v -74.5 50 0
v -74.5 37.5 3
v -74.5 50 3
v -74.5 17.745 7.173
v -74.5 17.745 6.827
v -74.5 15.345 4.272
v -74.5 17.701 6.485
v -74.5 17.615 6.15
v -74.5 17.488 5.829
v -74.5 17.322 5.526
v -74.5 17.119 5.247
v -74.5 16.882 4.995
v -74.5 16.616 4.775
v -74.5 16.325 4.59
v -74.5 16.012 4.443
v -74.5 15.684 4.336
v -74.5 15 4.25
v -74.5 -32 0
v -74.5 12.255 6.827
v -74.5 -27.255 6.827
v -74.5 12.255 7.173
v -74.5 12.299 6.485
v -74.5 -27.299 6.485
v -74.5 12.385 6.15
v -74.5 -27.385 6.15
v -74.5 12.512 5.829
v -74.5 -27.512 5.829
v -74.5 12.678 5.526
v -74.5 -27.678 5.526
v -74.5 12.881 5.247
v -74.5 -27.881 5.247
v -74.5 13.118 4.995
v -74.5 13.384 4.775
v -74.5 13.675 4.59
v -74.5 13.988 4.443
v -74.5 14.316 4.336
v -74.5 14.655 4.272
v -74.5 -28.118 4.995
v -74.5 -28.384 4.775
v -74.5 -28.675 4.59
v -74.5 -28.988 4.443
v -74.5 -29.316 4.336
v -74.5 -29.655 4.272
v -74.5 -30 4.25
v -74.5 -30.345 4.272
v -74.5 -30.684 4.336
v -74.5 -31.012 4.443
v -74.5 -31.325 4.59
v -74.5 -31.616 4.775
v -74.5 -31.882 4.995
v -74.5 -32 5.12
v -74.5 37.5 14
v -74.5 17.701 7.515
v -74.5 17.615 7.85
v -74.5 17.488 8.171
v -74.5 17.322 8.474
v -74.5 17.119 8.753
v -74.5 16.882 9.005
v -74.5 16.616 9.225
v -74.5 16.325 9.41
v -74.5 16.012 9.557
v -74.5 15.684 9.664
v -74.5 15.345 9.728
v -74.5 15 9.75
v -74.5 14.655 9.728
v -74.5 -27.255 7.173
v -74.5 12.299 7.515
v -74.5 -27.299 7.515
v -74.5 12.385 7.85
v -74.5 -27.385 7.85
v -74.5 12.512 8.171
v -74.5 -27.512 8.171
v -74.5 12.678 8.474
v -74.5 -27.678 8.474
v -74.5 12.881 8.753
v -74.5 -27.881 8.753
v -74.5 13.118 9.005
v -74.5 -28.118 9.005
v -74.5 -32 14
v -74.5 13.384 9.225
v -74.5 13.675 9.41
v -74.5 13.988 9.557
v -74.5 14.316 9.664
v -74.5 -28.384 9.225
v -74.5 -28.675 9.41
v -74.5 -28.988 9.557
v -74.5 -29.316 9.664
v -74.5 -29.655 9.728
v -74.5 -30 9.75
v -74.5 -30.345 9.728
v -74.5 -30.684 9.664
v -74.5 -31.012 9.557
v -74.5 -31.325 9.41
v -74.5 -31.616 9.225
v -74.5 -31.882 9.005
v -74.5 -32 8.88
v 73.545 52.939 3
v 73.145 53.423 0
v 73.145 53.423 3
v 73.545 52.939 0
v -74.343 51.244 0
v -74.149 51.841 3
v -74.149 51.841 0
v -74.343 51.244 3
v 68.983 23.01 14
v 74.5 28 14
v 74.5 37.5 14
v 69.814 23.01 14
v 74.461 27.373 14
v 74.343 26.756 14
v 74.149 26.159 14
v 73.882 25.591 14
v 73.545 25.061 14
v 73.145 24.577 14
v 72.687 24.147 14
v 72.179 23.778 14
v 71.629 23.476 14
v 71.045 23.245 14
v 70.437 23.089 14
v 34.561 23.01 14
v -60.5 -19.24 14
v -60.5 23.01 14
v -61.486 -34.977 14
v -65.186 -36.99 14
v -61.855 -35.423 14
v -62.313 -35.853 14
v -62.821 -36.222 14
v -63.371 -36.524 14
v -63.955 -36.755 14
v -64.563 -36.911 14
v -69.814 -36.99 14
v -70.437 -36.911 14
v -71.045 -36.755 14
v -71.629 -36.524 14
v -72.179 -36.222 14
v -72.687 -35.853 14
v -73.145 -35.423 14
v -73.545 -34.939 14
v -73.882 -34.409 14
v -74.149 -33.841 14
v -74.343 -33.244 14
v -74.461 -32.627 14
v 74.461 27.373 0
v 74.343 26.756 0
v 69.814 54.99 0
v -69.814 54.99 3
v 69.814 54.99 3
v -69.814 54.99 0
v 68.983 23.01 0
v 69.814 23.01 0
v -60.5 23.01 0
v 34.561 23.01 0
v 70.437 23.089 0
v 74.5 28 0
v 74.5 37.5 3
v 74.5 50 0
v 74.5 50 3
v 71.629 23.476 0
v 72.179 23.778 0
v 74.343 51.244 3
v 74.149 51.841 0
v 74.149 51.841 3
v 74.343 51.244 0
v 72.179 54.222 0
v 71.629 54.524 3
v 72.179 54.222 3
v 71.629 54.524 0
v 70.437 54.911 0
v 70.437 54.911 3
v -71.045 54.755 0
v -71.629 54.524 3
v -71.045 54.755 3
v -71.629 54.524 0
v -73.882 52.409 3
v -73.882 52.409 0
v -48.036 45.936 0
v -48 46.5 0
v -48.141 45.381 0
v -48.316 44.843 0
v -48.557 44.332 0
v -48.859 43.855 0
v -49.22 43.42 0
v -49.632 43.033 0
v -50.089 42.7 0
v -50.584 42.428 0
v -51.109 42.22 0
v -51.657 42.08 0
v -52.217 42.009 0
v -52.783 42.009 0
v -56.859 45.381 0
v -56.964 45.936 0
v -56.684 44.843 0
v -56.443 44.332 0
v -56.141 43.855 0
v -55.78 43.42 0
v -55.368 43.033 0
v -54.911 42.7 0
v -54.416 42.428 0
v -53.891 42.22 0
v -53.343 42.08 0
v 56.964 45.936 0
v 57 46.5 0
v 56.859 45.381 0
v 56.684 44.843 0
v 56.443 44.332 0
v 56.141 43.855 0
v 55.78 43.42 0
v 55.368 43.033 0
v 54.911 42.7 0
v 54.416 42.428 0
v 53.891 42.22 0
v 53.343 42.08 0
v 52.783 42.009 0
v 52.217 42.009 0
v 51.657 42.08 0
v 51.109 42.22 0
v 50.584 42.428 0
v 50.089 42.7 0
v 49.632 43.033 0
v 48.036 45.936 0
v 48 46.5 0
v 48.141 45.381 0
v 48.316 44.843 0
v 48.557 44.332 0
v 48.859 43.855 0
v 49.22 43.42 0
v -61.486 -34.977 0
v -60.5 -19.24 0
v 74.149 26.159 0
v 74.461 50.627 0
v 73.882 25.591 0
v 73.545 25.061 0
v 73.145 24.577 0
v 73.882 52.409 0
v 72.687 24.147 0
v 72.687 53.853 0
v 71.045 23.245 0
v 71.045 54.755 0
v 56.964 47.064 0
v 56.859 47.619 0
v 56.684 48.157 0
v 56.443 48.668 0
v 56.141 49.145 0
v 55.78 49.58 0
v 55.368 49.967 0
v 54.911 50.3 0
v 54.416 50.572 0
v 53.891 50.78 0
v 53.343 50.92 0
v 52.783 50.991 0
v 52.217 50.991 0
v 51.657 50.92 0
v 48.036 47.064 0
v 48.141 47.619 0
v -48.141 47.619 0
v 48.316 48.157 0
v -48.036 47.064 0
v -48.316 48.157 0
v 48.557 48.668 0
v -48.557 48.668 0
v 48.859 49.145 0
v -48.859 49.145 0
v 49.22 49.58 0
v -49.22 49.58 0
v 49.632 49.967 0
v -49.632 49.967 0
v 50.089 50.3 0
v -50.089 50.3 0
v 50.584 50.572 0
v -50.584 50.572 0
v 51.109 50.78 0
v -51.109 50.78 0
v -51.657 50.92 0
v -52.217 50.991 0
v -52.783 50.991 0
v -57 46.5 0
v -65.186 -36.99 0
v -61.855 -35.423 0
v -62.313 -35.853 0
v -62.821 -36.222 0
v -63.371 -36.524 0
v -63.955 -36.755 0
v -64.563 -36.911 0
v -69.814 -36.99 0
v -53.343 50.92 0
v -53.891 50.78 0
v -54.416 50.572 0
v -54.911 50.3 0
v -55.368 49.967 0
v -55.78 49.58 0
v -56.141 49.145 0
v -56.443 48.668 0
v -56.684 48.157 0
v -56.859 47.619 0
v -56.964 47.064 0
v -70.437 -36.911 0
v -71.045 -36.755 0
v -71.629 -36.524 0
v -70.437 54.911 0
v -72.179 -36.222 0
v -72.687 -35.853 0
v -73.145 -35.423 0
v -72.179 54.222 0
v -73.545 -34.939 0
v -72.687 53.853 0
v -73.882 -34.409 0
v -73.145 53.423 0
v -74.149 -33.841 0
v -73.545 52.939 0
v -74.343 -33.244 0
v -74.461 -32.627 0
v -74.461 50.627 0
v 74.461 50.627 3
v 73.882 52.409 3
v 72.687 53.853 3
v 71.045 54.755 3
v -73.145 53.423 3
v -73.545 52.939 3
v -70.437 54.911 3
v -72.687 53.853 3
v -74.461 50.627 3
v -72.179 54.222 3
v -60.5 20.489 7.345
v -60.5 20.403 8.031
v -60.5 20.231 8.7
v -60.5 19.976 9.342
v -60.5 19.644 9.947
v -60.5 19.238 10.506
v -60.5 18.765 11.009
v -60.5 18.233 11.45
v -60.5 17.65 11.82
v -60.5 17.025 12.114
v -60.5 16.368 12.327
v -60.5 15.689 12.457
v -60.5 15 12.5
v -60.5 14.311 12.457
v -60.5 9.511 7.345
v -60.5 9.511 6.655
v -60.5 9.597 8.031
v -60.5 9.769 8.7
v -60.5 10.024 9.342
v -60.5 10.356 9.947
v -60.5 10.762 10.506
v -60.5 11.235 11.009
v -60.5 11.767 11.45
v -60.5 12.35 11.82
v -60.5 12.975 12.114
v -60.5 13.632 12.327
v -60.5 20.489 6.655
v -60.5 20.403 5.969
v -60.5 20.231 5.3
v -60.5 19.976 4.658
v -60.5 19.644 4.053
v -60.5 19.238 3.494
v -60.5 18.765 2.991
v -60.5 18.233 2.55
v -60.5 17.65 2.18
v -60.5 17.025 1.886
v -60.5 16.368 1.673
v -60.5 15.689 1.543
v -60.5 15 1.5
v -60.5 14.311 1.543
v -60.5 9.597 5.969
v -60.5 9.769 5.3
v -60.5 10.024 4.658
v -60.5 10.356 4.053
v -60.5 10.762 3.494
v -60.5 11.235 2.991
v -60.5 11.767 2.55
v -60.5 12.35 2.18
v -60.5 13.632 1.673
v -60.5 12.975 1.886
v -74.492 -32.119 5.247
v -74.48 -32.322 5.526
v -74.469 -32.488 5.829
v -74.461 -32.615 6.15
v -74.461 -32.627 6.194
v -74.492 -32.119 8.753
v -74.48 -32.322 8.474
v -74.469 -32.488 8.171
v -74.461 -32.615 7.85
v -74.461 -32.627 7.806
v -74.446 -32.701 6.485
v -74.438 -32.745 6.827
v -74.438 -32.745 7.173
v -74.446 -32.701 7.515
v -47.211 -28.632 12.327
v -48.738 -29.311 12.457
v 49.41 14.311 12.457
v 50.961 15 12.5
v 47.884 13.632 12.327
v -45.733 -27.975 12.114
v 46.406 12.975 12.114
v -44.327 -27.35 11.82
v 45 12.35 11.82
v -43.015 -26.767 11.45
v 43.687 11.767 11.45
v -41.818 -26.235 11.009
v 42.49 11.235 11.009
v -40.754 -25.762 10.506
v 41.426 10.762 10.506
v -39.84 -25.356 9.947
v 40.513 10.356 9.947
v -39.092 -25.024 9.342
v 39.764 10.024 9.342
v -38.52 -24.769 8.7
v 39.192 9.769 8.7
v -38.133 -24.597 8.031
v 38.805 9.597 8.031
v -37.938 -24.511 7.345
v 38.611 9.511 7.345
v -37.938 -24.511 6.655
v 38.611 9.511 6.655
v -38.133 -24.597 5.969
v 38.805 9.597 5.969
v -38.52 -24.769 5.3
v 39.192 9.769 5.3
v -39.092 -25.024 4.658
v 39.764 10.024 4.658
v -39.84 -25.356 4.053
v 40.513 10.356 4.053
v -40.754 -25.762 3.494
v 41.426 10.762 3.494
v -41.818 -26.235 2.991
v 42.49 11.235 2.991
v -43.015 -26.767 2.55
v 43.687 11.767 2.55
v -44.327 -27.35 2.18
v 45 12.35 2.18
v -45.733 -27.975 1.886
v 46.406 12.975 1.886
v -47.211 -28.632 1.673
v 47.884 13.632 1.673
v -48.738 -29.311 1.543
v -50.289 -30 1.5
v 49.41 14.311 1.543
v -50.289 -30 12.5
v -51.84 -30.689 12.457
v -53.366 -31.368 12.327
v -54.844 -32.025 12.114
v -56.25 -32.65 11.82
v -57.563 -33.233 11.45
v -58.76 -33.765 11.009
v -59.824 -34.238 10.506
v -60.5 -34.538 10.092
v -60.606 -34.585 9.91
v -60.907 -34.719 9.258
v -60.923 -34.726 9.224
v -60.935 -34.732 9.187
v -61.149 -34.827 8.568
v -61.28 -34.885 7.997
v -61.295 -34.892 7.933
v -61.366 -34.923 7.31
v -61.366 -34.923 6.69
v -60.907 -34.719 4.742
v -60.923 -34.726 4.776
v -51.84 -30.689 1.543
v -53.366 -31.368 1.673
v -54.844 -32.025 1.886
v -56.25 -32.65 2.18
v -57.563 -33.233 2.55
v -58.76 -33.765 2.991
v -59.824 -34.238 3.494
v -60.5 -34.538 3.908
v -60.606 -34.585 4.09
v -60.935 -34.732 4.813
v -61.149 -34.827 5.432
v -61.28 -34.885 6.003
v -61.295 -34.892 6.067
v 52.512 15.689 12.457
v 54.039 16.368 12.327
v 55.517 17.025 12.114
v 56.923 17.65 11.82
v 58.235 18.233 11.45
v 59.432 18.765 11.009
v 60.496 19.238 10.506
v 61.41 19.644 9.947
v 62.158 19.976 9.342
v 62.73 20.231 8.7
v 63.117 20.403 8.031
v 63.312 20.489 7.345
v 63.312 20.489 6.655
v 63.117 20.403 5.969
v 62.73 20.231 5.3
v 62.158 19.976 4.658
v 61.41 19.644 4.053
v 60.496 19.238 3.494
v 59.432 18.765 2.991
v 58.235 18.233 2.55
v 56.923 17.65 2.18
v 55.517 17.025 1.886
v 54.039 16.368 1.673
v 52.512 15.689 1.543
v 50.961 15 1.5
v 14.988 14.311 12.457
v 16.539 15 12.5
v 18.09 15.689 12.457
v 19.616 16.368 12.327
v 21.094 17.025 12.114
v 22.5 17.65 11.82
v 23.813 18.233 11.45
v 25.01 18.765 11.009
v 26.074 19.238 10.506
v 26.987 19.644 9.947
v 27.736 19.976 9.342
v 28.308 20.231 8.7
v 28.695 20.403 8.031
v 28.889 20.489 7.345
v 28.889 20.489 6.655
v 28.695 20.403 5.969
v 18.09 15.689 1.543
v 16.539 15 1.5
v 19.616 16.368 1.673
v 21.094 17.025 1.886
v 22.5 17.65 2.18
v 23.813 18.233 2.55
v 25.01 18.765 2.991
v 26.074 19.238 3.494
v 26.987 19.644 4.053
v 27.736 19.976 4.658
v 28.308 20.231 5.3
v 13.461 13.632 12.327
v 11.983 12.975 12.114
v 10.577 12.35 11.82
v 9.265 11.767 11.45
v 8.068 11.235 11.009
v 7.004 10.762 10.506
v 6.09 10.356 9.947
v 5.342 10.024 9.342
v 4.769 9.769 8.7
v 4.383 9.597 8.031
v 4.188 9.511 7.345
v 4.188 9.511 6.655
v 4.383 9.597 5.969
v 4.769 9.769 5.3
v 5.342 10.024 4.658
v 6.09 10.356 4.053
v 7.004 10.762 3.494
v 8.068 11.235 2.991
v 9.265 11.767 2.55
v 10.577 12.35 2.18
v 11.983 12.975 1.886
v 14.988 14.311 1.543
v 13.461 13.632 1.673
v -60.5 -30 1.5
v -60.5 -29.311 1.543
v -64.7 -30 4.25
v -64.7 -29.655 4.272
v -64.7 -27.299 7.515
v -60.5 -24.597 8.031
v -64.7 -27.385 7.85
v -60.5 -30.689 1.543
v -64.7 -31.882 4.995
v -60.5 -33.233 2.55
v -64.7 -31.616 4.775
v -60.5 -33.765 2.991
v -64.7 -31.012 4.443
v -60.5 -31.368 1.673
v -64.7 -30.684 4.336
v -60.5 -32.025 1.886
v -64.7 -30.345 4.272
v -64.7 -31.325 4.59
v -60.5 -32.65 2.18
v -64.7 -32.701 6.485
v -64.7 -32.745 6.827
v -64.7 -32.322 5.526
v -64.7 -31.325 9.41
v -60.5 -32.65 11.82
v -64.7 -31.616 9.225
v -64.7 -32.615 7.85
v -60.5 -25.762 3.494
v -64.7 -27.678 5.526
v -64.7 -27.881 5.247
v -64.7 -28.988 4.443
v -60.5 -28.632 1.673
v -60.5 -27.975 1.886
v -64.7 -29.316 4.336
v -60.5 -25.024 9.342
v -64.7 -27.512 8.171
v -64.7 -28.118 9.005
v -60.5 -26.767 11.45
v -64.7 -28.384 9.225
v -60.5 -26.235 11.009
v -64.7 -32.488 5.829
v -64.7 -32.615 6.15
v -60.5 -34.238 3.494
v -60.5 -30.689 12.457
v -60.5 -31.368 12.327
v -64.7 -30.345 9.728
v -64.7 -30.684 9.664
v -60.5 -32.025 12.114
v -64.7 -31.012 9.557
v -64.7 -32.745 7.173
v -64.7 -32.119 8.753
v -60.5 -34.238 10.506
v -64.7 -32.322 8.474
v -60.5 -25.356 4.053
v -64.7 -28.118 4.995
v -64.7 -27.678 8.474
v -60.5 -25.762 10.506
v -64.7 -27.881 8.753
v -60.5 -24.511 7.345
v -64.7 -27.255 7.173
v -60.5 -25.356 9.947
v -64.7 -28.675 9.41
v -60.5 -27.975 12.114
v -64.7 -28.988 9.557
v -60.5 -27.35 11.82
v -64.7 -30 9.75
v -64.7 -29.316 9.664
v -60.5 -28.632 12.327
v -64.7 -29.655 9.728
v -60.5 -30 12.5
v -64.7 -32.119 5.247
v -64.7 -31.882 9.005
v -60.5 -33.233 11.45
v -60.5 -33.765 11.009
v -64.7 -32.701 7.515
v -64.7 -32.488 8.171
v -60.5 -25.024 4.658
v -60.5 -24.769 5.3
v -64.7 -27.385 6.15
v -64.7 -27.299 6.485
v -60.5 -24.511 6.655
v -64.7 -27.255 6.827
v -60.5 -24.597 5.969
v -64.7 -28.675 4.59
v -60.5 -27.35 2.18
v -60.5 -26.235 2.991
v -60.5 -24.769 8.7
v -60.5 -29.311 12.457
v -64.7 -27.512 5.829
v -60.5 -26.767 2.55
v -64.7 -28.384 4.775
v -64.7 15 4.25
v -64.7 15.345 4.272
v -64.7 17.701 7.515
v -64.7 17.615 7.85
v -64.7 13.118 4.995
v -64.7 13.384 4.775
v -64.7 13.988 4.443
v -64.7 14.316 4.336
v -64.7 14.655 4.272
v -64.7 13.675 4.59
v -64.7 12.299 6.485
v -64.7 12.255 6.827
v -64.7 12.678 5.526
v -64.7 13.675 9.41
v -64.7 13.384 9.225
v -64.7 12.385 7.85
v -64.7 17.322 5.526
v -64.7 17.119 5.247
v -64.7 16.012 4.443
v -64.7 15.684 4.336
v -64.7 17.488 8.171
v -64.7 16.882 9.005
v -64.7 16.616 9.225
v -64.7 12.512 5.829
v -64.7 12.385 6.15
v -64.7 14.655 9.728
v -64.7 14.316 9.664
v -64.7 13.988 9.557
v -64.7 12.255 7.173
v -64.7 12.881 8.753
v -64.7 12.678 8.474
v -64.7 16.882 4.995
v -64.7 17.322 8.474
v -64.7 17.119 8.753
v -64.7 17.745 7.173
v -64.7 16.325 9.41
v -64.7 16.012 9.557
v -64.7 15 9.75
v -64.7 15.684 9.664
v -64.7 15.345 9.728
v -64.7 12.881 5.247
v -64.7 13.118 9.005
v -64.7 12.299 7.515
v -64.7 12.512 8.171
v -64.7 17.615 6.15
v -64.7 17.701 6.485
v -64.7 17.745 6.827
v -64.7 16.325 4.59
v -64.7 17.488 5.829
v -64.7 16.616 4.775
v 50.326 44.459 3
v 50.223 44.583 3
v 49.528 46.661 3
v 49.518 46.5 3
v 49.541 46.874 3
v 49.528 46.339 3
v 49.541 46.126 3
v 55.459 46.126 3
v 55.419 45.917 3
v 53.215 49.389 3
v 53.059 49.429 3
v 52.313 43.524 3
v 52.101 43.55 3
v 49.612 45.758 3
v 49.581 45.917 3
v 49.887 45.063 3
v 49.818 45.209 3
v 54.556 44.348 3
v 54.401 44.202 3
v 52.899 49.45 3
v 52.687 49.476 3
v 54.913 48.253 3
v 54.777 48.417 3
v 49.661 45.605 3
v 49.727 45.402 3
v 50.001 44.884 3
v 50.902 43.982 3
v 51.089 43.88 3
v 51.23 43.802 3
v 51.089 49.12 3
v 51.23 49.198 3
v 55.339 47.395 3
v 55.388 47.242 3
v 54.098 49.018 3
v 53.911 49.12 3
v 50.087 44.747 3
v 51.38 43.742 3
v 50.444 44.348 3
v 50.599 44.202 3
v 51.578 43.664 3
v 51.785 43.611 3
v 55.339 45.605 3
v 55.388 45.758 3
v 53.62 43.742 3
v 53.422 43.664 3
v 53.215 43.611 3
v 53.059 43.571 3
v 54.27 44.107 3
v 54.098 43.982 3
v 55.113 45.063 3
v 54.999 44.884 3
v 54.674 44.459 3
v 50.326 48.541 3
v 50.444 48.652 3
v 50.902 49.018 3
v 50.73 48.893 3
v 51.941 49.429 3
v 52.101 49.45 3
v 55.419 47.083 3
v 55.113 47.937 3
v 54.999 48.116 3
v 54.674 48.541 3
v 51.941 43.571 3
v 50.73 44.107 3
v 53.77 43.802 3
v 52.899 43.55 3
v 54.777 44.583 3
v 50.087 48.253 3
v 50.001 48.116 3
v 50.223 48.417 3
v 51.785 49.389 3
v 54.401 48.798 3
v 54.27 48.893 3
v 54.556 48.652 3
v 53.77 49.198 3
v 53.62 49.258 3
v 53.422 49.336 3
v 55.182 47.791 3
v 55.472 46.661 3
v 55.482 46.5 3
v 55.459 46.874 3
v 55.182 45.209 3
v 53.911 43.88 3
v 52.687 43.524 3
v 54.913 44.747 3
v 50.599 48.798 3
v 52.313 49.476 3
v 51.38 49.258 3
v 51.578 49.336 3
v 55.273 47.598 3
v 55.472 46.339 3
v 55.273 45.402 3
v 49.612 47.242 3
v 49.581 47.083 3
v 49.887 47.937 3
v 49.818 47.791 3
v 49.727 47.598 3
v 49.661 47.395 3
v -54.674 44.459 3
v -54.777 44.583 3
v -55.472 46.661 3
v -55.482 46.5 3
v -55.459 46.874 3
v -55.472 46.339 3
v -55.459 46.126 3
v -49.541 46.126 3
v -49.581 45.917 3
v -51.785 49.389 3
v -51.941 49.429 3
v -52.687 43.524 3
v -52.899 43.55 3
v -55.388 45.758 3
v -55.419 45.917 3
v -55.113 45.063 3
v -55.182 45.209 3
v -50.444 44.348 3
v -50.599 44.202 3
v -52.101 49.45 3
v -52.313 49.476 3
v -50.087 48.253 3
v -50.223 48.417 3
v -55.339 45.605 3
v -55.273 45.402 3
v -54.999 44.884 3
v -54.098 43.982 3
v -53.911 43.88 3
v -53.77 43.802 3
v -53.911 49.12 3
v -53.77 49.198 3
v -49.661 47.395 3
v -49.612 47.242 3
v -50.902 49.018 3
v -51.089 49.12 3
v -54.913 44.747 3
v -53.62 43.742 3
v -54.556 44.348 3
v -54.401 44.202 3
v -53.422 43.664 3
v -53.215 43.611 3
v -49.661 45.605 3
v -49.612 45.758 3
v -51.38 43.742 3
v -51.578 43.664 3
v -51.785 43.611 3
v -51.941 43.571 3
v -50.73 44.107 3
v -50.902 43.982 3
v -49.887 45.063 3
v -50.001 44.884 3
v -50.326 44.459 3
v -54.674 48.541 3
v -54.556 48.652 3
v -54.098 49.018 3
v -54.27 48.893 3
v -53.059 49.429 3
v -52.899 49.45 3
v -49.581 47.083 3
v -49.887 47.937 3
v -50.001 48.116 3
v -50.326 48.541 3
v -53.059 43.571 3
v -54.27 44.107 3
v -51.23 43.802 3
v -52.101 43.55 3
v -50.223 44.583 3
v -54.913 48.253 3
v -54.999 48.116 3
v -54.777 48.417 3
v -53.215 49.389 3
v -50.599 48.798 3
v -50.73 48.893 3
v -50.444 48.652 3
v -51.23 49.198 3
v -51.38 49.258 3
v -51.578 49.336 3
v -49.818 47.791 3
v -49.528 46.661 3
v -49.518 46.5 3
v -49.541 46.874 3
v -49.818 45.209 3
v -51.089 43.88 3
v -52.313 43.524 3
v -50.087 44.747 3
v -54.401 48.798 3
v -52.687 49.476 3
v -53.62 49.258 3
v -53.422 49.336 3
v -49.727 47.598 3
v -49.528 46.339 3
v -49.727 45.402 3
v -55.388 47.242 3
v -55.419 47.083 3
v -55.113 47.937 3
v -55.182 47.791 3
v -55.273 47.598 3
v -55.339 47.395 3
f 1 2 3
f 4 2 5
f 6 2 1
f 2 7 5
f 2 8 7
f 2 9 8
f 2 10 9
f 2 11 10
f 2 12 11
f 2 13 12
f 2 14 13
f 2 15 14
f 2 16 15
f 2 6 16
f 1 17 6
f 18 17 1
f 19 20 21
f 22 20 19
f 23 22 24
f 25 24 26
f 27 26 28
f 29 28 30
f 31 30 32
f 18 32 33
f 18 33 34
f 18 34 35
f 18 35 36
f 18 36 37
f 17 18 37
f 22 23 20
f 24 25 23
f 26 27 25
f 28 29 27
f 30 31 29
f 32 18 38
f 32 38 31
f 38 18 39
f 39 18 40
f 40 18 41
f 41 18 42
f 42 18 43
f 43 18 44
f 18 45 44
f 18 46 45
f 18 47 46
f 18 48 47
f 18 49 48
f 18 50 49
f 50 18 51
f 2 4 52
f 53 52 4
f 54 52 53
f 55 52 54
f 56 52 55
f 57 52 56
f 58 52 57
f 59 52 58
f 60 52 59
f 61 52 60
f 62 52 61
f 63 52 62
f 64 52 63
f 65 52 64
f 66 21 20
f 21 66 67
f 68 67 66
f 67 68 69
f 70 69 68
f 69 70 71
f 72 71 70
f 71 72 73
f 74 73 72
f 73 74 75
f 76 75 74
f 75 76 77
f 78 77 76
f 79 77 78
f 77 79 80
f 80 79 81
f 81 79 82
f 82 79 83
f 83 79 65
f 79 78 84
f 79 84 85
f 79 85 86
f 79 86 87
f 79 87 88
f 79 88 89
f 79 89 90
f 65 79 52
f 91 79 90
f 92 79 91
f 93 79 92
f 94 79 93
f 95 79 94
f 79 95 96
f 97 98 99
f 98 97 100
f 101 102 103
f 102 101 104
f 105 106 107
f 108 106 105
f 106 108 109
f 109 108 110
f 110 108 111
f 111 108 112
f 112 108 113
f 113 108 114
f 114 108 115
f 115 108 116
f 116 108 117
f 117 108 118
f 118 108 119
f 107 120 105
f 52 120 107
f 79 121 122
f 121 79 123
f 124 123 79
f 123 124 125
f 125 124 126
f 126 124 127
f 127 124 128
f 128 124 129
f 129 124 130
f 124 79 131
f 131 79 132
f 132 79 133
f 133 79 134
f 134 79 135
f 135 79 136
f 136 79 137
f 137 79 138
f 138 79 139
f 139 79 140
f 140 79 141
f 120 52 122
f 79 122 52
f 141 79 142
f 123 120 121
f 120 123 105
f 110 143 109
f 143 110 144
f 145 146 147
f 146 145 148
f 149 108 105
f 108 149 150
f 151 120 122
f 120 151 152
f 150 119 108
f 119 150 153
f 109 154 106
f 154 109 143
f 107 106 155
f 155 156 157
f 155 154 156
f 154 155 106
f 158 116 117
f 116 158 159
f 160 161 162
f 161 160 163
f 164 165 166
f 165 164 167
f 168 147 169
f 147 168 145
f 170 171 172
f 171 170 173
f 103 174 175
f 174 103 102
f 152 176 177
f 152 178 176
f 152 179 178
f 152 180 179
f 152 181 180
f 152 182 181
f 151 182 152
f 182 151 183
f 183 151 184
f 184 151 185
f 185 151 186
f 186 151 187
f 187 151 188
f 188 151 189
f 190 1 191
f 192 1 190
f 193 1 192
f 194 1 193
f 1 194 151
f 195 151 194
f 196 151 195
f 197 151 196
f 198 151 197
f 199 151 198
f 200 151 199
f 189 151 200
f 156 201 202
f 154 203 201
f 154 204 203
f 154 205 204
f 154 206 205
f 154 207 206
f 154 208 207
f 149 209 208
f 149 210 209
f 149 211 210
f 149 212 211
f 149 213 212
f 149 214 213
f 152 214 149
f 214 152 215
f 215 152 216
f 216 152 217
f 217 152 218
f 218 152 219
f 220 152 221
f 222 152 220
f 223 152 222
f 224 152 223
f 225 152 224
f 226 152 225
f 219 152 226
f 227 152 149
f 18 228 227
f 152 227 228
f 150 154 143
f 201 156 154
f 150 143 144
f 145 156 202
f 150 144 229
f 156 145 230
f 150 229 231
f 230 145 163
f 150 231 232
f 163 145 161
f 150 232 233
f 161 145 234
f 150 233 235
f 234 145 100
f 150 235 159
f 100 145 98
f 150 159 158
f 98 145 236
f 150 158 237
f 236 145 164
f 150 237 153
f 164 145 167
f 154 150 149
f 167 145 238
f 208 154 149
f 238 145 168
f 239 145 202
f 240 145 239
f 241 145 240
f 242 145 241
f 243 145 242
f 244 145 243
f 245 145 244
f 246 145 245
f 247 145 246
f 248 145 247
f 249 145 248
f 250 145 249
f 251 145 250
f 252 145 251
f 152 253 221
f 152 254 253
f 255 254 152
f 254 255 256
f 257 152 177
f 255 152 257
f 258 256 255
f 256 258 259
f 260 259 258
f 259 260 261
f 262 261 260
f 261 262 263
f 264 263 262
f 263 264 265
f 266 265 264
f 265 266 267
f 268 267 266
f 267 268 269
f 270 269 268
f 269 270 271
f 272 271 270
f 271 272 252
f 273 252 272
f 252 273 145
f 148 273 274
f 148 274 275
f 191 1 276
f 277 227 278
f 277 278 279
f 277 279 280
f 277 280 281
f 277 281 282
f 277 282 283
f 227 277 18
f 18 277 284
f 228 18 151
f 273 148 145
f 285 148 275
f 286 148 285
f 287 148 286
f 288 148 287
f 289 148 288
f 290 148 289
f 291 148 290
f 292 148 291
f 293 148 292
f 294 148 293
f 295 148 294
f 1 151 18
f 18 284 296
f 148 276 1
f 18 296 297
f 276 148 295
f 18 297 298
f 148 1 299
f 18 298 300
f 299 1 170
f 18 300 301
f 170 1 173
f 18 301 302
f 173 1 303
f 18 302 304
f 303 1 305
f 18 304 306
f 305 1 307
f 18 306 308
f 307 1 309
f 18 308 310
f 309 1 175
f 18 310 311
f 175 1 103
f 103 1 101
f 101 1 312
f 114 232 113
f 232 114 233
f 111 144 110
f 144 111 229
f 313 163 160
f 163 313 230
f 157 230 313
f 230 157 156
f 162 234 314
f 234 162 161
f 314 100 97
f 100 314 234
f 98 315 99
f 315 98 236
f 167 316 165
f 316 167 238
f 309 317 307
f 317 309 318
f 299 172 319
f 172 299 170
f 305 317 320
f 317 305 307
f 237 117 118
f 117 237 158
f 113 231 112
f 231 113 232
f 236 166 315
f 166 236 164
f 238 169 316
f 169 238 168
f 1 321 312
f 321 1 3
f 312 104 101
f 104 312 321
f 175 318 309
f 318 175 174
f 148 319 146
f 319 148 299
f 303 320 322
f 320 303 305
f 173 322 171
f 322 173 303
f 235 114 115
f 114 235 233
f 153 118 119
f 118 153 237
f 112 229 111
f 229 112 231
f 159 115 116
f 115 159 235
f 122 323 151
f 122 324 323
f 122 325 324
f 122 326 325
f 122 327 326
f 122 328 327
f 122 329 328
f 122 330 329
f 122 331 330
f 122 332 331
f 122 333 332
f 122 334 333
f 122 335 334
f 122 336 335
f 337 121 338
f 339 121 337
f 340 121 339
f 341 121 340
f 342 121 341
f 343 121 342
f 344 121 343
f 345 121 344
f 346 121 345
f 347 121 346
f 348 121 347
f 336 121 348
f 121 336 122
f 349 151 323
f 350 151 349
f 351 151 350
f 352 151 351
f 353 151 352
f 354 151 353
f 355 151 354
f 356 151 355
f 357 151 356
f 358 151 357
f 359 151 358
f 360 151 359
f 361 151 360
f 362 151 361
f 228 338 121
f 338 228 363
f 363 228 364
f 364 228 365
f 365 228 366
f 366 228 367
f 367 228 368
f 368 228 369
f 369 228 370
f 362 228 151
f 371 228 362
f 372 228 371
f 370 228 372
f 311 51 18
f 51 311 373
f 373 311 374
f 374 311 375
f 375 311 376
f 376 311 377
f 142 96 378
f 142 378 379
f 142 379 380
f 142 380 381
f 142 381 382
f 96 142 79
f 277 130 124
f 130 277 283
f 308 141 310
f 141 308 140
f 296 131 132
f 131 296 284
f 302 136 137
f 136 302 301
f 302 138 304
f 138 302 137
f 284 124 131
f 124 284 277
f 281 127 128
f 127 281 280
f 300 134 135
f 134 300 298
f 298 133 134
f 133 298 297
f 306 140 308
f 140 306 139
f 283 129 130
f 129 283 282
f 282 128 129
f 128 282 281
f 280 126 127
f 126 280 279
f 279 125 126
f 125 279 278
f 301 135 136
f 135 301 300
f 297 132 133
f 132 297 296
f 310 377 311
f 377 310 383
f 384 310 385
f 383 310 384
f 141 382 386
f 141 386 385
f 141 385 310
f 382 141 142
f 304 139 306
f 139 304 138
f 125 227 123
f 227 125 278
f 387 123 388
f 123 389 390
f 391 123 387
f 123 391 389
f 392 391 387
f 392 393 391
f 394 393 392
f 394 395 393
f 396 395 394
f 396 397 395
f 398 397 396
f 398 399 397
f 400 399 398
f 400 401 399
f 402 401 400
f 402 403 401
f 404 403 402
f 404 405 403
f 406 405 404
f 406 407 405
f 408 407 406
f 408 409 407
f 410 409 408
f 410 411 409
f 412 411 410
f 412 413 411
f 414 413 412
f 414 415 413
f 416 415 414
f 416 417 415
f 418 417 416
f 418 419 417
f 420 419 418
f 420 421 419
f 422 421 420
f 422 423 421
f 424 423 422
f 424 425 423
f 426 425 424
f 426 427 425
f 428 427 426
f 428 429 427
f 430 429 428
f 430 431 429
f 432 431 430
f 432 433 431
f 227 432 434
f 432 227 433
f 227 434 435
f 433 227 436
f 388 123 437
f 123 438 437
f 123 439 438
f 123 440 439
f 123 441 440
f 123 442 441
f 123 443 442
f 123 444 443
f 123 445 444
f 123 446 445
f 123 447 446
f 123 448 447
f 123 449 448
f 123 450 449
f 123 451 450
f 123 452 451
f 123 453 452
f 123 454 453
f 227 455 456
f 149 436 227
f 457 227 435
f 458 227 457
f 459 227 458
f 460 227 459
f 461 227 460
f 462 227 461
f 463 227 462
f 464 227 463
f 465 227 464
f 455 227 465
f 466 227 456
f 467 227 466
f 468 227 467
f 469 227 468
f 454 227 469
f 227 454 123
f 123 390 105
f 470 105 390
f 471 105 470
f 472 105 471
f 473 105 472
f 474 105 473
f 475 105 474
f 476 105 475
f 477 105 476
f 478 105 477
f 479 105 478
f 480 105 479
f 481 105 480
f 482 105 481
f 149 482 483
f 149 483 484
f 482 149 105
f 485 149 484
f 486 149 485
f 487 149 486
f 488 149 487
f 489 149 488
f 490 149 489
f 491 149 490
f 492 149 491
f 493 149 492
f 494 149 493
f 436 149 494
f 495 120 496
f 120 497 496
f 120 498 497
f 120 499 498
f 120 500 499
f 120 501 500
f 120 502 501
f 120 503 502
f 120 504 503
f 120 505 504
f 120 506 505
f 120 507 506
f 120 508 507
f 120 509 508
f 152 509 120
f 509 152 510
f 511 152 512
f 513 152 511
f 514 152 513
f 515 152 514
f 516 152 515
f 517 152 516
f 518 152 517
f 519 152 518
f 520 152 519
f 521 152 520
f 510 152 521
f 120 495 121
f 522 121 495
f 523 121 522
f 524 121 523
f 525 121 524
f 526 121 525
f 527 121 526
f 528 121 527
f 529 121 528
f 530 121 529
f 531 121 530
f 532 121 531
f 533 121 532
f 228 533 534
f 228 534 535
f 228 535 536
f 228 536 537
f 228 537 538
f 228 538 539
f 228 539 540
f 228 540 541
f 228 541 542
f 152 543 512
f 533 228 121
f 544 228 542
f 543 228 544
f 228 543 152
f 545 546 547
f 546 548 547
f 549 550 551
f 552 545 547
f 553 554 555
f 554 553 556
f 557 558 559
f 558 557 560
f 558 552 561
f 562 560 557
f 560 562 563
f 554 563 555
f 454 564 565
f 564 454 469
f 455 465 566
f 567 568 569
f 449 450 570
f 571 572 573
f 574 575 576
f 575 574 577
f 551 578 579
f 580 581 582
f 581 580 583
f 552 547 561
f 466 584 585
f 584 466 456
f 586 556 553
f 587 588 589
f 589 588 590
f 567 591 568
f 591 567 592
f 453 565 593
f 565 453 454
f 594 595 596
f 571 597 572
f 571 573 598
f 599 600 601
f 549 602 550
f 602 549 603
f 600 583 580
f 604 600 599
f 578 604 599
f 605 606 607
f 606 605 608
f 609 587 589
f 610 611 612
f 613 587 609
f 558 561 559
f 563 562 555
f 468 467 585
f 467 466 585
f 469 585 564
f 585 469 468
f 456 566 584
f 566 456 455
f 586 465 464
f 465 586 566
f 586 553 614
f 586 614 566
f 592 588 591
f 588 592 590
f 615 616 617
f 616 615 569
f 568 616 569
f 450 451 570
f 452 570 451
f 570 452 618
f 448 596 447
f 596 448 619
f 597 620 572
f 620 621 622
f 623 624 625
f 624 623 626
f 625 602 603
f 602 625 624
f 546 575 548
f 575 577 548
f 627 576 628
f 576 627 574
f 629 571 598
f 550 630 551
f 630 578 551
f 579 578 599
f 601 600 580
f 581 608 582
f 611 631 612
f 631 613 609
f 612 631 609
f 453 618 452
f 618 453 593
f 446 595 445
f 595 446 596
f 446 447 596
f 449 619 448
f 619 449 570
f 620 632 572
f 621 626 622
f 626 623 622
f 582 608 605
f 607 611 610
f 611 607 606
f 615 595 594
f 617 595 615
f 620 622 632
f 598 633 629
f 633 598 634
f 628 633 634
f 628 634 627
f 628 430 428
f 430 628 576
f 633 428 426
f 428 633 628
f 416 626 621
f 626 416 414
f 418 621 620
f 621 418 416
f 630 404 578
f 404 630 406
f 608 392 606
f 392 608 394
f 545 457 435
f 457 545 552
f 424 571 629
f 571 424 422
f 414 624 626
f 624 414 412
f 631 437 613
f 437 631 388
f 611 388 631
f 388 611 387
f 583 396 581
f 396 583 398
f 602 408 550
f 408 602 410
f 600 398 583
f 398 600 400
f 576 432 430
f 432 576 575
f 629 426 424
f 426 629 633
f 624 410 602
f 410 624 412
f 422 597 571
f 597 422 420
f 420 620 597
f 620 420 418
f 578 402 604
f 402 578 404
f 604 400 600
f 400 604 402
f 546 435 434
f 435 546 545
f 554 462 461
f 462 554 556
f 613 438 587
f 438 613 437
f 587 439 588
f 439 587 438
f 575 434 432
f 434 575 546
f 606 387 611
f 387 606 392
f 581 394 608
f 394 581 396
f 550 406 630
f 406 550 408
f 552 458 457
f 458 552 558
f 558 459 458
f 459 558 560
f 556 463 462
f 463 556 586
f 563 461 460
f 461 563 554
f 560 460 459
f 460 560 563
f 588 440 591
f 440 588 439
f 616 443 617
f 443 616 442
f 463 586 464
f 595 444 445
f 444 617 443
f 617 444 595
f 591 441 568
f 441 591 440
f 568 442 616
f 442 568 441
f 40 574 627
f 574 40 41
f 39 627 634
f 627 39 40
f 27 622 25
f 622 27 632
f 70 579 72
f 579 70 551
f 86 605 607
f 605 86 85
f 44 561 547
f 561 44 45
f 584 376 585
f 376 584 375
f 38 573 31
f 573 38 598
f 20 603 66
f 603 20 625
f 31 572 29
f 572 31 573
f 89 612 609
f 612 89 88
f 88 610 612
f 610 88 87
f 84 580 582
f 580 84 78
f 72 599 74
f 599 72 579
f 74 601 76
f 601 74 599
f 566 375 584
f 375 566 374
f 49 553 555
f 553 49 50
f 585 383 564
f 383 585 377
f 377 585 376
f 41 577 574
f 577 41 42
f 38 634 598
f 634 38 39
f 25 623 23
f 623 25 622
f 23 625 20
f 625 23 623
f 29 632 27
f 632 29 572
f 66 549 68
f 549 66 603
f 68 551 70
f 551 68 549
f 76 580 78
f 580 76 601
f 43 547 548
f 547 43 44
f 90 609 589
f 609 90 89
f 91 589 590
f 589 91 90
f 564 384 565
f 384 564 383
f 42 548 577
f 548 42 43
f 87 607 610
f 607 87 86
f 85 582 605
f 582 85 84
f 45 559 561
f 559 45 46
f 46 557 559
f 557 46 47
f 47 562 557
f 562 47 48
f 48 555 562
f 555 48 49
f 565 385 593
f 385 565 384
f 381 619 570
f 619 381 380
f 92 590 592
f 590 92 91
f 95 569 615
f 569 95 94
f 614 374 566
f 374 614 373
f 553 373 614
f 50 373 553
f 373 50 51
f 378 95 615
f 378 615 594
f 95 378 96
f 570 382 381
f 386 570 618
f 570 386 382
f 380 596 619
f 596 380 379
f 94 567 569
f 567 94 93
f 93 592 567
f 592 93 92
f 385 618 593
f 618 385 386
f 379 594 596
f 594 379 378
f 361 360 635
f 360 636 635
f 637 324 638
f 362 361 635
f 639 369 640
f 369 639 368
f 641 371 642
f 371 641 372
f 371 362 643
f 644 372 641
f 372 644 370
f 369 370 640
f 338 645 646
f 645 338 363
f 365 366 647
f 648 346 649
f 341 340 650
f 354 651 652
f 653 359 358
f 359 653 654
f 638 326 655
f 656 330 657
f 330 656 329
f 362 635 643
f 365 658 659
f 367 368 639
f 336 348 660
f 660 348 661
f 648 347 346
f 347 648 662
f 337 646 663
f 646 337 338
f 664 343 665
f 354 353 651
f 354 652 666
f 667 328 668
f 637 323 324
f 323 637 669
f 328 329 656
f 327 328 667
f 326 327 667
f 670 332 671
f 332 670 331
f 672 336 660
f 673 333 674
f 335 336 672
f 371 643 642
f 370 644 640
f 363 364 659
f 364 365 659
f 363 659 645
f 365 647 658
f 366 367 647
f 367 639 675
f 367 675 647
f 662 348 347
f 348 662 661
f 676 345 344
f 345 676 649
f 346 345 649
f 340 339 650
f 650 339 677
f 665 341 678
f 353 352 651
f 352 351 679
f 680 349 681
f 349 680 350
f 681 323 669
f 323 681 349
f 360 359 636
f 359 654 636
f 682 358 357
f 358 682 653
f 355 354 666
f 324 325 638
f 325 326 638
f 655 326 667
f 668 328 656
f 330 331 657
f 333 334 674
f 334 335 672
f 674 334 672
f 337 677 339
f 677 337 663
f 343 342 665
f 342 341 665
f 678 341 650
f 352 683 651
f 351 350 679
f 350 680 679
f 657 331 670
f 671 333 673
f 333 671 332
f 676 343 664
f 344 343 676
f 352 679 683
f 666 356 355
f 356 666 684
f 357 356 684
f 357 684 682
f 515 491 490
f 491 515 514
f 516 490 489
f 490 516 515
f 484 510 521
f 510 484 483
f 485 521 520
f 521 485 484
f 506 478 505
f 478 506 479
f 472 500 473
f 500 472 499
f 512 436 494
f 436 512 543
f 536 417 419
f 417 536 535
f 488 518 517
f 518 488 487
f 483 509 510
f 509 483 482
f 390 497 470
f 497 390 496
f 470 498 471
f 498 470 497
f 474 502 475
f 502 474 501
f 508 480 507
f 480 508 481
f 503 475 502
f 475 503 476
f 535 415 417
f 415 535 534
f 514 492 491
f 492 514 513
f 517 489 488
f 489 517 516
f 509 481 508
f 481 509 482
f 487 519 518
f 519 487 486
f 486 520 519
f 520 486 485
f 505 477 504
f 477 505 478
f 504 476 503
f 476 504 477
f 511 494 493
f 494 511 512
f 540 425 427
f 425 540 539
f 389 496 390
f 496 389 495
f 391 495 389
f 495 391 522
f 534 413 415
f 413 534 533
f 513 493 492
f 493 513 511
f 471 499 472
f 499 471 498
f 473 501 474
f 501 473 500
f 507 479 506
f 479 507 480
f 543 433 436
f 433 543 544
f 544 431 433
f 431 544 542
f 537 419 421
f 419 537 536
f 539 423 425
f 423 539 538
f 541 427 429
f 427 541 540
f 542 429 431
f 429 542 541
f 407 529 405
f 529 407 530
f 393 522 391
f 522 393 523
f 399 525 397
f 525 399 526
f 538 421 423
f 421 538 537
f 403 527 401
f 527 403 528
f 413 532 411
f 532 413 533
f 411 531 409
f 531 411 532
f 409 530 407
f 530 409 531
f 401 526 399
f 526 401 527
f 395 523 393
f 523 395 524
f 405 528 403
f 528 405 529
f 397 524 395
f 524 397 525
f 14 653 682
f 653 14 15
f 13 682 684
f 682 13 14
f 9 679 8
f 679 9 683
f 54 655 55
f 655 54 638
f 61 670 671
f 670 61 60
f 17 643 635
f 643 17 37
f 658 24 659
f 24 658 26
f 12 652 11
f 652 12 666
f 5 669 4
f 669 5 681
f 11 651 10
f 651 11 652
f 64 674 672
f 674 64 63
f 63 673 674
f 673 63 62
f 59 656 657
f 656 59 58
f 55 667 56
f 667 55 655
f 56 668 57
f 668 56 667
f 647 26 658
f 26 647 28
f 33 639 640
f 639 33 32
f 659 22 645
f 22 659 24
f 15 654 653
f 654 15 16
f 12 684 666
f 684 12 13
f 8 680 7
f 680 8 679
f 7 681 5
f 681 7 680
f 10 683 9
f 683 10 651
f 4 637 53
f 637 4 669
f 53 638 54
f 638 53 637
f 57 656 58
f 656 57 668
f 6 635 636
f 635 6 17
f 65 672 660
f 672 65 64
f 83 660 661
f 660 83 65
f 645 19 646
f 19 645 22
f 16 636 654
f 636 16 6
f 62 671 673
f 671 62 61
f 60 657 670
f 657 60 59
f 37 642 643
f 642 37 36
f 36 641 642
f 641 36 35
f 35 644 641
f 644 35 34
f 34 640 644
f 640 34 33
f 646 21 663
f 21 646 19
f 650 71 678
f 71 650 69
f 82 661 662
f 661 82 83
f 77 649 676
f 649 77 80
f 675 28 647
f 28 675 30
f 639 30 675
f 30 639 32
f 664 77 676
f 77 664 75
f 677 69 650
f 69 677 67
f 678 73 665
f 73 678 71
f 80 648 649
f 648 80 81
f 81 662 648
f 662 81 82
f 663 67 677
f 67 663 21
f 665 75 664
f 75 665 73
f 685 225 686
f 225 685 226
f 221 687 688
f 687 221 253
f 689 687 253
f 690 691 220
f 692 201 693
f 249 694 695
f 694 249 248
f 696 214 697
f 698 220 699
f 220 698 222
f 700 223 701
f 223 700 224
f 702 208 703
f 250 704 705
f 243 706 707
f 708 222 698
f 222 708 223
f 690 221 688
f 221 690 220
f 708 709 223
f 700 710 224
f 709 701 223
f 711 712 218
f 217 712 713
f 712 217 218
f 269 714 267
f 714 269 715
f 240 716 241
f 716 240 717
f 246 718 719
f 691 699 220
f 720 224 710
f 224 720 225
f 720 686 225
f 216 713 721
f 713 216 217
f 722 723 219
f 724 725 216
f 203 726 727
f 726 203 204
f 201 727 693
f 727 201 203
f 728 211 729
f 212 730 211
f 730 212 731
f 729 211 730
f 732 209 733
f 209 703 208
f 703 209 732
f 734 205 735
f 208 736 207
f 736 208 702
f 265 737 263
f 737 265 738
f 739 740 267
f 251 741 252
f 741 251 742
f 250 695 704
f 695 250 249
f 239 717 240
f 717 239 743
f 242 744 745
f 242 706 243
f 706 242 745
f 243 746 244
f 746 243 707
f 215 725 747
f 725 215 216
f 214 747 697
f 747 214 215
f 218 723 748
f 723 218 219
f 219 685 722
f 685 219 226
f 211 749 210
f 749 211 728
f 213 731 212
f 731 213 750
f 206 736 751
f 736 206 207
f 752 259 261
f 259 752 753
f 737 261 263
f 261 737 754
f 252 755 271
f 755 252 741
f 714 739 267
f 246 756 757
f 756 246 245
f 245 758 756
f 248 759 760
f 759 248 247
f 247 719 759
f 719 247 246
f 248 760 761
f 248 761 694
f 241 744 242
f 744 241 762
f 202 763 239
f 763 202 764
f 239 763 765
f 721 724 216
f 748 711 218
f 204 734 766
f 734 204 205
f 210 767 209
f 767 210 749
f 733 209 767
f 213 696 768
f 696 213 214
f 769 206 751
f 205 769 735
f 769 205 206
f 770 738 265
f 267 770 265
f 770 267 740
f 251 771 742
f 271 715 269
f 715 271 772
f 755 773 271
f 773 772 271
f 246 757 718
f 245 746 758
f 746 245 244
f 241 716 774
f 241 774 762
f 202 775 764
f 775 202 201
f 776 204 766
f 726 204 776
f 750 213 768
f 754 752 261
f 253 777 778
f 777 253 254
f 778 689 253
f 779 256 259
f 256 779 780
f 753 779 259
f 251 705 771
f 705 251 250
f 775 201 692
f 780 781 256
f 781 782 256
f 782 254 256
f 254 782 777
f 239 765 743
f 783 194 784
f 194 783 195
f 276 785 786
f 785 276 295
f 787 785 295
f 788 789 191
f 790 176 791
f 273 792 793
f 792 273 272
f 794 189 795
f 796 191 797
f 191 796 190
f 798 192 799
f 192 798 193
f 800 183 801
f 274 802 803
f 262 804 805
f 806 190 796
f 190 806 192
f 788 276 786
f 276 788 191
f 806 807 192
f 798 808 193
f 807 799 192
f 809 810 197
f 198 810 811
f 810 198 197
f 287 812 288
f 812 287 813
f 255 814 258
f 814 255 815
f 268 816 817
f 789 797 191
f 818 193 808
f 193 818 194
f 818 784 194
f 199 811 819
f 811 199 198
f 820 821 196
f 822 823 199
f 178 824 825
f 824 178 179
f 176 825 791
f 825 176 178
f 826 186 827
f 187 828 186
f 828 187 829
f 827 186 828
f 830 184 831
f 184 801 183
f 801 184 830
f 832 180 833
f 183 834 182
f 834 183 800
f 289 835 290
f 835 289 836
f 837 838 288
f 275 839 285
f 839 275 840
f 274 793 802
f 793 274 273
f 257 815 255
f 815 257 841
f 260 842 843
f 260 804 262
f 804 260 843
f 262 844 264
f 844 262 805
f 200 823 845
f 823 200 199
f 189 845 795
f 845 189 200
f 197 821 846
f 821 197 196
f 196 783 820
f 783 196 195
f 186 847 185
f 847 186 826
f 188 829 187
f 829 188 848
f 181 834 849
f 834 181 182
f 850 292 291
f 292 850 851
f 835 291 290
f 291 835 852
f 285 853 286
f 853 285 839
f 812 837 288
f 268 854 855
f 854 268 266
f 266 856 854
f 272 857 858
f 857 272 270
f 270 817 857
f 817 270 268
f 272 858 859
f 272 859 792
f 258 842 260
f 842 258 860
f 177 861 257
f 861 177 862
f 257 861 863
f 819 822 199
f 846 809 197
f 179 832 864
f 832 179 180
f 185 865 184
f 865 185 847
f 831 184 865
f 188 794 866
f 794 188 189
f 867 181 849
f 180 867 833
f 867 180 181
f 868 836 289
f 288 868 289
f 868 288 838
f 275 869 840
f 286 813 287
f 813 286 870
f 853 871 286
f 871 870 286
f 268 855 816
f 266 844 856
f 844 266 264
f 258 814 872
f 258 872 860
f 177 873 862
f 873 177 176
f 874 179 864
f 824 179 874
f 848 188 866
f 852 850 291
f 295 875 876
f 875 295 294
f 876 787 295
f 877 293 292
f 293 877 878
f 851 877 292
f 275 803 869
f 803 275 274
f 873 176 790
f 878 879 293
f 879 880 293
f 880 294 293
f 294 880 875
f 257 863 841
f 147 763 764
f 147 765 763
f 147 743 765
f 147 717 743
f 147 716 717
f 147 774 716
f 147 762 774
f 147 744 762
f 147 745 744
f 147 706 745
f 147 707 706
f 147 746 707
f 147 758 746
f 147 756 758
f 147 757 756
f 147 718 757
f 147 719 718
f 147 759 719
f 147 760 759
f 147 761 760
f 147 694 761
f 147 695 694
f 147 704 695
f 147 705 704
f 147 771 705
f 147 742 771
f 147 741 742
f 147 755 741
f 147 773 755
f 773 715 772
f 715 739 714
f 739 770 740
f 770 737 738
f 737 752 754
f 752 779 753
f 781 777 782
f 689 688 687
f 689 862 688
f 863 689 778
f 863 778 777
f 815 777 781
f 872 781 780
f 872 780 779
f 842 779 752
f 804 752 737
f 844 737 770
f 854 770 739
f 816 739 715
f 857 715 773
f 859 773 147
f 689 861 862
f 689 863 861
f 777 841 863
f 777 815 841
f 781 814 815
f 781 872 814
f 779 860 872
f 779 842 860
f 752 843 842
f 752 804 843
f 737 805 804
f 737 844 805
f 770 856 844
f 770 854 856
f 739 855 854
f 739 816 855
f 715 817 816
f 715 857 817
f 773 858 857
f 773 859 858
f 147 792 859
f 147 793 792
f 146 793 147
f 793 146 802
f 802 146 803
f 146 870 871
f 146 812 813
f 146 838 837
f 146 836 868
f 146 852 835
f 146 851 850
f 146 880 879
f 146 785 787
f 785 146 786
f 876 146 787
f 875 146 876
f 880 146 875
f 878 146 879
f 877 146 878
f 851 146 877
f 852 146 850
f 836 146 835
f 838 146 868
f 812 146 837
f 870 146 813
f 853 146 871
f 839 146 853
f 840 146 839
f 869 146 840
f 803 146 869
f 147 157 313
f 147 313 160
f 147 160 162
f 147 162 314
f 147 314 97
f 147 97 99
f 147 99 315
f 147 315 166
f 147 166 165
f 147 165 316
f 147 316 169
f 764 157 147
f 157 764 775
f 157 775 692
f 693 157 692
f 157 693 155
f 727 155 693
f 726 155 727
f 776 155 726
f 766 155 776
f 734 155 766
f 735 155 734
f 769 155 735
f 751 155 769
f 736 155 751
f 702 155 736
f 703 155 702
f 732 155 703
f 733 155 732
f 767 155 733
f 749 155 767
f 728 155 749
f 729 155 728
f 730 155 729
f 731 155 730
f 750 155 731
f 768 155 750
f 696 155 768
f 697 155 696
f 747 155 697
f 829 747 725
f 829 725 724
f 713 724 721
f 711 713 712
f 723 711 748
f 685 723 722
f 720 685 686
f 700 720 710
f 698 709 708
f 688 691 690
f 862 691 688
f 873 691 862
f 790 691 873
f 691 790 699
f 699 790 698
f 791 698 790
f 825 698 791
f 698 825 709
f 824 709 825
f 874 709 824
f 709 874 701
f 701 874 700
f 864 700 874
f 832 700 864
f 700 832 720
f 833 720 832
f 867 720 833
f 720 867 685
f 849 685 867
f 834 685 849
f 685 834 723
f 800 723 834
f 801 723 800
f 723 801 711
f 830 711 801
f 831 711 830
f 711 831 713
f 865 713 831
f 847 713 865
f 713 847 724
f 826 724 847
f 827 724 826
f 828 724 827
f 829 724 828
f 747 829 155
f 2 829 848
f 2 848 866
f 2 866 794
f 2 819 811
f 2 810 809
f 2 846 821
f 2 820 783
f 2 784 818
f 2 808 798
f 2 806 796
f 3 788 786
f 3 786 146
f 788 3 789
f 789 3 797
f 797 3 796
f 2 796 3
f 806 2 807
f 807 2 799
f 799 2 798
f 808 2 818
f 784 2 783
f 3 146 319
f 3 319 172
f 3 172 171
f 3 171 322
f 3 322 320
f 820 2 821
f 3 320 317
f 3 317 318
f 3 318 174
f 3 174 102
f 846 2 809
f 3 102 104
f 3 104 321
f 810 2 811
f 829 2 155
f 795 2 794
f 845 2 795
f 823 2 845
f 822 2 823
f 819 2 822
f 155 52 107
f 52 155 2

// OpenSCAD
$fn = 50;


difference() {
	union() {
		translate(v = [0, 39.0000000000, 0]) {
			hull() {
				translate(v = [-69.5000000000, 11.0000000000, 0]) {
					cylinder(h = 14, r = 5);
				}
				translate(v = [69.5000000000, 11.0000000000, 0]) {
					cylinder(h = 14, r = 5);
				}
				translate(v = [-69.5000000000, -11.0000000000, 0]) {
					cylinder(h = 14, r = 5);
				}
				translate(v = [69.5000000000, -11.0000000000, 0]) {
					cylinder(h = 14, r = 5);
				}
			}
		}
		translate(v = [-67.5000000000, 0, 0]) {
			hull() {
				translate(v = [-2.0000000000, 32.0000000000, 0]) {
					cylinder(h = 14, r = 5);
				}
				translate(v = [2.0000000000, 32.0000000000, 0]) {
					cylinder(h = 14, r = 5);
				}
				translate(v = [-2.0000000000, -32.0000000000, 0]) {
					cylinder(h = 14, r = 5);
				}
				translate(v = [2.0000000000, -32.0000000000, 0]) {
					cylinder(h = 14, r = 5);
				}
			}
		}
		rotate(a = [0, 0, 23.9624889746]) {
			hull() {
				translate(v = [-73.3664335135, 2.0000000000, 0]) {
					cylinder(h = 14, r = 5);
				}
				translate(v = [73.3664335135, 2.0000000000, 0]) {
					cylinder(h = 14, r = 5);
				}
				translate(v = [-73.3664335135, -2.0000000000, 0]) {
					cylinder(h = 14, r = 5);
				}
				translate(v = [73.3664335135, -2.0000000000, 0]) {
					cylinder(h = 14, r = 5);
				}
			}
		}
	}
	union() {
		translate(v = [-60.5000000000, -30.0000000000, 7.0000000000]) {
			rotate(a = [0, 90, 0]) {
				difference() {
					union() {
						#translate(v = [0, 0, -14.0000000000]) {
							cylinder(h = 14, r = 2.2500000000);
						}
						#translate(v = [0, 0, -4.2000000000]) {
							cylinder(h = 4.2000000000, r1 = 2.7500000000, r2 = 5.5000000000);
						}
						#cylinder(h = 250, r = 5.5000000000);
						#translate(v = [0, 0, -14.0000000000]) {
							cylinder(h = 14, r = 2.7500000000);
						}
						#translate(v = [0, 0, -14.0000000000]) {
							cylinder(h = 14, r = 2.2500000000);
						}
					}
					union();
				}
			}
		}
		translate(v = [-60.5000000000, 15.0000000000, 7.0000000000]) {
			rotate(a = [0, 90, 0]) {
				difference() {
					union() {
						#translate(v = [0, 0, -14.0000000000]) {
							cylinder(h = 14, r = 2.2500000000);
						}
						#translate(v = [0, 0, -4.2000000000]) {
							cylinder(h = 4.2000000000, r1 = 2.7500000000, r2 = 5.5000000000);
						}
						#cylinder(h = 250, r = 5.5000000000);
						#translate(v = [0, 0, -14.0000000000]) {
							cylinder(h = 14, r = 2.7500000000);
						}
						#translate(v = [0, 0, -14.0000000000]) {
							cylinder(h = 14, r = 2.2500000000);
						}
					}
					union();
				}
			}
		}
		translate(v = [52.5000000000, 46.5000000000, 0.0000000000]) {
			rotate(a = [0, 180, 0]) {
				difference() {
					union() {
						#translate(v = [0, 0, -14.0000000000]) {
							cylinder(h = 14, r = 2.2500000000);
						}
						#translate(v = [0, 0, -4.2000000000]) {
							cylinder(h = 4.2000000000, r1 = 2.3750000000, r2 = 4.5000000000);
						}
						#cylinder(h = 250, r = 4.5000000000);
						#translate(v = [0, 0, -14.0000000000]) {
							cylinder(h = 14, r = 2.3750000000);
						}
						#translate(v = [0, 0, -14.0000000000]) {
							cylinder(h = 14, r = 2.2500000000);
						}
					}
					union();
				}
			}
		}
		translate(v = [-52.5000000000, 46.5000000000, 0.0000000000]) {
			rotate(a = [0, 180, 0]) {
				difference() {
					union() {
						#translate(v = [0, 0, -14.0000000000]) {
							cylinder(h = 14, r = 2.2500000000);
						}
						#translate(v = [0, 0, -4.2000000000]) {
							cylinder(h = 4.2000000000, r1 = 2.3750000000, r2 = 4.5000000000);
						}
						#cylinder(h = 250, r = 4.5000000000);
						#translate(v = [0, 0, -14.0000000000]) {
							cylinder(h = 14, r = 2.3750000000);
						}
						#translate(v = [0, 0, -14.0000000000]) {
							cylinder(h = 14, r = 2.2500000000);
						}
					}
					union();
				}
			}
		}
		translate(v = [-74.5000000000, 37.5000000000, 3]) {
			cube(size = [149, 18, 11]);
		}
	}
}
